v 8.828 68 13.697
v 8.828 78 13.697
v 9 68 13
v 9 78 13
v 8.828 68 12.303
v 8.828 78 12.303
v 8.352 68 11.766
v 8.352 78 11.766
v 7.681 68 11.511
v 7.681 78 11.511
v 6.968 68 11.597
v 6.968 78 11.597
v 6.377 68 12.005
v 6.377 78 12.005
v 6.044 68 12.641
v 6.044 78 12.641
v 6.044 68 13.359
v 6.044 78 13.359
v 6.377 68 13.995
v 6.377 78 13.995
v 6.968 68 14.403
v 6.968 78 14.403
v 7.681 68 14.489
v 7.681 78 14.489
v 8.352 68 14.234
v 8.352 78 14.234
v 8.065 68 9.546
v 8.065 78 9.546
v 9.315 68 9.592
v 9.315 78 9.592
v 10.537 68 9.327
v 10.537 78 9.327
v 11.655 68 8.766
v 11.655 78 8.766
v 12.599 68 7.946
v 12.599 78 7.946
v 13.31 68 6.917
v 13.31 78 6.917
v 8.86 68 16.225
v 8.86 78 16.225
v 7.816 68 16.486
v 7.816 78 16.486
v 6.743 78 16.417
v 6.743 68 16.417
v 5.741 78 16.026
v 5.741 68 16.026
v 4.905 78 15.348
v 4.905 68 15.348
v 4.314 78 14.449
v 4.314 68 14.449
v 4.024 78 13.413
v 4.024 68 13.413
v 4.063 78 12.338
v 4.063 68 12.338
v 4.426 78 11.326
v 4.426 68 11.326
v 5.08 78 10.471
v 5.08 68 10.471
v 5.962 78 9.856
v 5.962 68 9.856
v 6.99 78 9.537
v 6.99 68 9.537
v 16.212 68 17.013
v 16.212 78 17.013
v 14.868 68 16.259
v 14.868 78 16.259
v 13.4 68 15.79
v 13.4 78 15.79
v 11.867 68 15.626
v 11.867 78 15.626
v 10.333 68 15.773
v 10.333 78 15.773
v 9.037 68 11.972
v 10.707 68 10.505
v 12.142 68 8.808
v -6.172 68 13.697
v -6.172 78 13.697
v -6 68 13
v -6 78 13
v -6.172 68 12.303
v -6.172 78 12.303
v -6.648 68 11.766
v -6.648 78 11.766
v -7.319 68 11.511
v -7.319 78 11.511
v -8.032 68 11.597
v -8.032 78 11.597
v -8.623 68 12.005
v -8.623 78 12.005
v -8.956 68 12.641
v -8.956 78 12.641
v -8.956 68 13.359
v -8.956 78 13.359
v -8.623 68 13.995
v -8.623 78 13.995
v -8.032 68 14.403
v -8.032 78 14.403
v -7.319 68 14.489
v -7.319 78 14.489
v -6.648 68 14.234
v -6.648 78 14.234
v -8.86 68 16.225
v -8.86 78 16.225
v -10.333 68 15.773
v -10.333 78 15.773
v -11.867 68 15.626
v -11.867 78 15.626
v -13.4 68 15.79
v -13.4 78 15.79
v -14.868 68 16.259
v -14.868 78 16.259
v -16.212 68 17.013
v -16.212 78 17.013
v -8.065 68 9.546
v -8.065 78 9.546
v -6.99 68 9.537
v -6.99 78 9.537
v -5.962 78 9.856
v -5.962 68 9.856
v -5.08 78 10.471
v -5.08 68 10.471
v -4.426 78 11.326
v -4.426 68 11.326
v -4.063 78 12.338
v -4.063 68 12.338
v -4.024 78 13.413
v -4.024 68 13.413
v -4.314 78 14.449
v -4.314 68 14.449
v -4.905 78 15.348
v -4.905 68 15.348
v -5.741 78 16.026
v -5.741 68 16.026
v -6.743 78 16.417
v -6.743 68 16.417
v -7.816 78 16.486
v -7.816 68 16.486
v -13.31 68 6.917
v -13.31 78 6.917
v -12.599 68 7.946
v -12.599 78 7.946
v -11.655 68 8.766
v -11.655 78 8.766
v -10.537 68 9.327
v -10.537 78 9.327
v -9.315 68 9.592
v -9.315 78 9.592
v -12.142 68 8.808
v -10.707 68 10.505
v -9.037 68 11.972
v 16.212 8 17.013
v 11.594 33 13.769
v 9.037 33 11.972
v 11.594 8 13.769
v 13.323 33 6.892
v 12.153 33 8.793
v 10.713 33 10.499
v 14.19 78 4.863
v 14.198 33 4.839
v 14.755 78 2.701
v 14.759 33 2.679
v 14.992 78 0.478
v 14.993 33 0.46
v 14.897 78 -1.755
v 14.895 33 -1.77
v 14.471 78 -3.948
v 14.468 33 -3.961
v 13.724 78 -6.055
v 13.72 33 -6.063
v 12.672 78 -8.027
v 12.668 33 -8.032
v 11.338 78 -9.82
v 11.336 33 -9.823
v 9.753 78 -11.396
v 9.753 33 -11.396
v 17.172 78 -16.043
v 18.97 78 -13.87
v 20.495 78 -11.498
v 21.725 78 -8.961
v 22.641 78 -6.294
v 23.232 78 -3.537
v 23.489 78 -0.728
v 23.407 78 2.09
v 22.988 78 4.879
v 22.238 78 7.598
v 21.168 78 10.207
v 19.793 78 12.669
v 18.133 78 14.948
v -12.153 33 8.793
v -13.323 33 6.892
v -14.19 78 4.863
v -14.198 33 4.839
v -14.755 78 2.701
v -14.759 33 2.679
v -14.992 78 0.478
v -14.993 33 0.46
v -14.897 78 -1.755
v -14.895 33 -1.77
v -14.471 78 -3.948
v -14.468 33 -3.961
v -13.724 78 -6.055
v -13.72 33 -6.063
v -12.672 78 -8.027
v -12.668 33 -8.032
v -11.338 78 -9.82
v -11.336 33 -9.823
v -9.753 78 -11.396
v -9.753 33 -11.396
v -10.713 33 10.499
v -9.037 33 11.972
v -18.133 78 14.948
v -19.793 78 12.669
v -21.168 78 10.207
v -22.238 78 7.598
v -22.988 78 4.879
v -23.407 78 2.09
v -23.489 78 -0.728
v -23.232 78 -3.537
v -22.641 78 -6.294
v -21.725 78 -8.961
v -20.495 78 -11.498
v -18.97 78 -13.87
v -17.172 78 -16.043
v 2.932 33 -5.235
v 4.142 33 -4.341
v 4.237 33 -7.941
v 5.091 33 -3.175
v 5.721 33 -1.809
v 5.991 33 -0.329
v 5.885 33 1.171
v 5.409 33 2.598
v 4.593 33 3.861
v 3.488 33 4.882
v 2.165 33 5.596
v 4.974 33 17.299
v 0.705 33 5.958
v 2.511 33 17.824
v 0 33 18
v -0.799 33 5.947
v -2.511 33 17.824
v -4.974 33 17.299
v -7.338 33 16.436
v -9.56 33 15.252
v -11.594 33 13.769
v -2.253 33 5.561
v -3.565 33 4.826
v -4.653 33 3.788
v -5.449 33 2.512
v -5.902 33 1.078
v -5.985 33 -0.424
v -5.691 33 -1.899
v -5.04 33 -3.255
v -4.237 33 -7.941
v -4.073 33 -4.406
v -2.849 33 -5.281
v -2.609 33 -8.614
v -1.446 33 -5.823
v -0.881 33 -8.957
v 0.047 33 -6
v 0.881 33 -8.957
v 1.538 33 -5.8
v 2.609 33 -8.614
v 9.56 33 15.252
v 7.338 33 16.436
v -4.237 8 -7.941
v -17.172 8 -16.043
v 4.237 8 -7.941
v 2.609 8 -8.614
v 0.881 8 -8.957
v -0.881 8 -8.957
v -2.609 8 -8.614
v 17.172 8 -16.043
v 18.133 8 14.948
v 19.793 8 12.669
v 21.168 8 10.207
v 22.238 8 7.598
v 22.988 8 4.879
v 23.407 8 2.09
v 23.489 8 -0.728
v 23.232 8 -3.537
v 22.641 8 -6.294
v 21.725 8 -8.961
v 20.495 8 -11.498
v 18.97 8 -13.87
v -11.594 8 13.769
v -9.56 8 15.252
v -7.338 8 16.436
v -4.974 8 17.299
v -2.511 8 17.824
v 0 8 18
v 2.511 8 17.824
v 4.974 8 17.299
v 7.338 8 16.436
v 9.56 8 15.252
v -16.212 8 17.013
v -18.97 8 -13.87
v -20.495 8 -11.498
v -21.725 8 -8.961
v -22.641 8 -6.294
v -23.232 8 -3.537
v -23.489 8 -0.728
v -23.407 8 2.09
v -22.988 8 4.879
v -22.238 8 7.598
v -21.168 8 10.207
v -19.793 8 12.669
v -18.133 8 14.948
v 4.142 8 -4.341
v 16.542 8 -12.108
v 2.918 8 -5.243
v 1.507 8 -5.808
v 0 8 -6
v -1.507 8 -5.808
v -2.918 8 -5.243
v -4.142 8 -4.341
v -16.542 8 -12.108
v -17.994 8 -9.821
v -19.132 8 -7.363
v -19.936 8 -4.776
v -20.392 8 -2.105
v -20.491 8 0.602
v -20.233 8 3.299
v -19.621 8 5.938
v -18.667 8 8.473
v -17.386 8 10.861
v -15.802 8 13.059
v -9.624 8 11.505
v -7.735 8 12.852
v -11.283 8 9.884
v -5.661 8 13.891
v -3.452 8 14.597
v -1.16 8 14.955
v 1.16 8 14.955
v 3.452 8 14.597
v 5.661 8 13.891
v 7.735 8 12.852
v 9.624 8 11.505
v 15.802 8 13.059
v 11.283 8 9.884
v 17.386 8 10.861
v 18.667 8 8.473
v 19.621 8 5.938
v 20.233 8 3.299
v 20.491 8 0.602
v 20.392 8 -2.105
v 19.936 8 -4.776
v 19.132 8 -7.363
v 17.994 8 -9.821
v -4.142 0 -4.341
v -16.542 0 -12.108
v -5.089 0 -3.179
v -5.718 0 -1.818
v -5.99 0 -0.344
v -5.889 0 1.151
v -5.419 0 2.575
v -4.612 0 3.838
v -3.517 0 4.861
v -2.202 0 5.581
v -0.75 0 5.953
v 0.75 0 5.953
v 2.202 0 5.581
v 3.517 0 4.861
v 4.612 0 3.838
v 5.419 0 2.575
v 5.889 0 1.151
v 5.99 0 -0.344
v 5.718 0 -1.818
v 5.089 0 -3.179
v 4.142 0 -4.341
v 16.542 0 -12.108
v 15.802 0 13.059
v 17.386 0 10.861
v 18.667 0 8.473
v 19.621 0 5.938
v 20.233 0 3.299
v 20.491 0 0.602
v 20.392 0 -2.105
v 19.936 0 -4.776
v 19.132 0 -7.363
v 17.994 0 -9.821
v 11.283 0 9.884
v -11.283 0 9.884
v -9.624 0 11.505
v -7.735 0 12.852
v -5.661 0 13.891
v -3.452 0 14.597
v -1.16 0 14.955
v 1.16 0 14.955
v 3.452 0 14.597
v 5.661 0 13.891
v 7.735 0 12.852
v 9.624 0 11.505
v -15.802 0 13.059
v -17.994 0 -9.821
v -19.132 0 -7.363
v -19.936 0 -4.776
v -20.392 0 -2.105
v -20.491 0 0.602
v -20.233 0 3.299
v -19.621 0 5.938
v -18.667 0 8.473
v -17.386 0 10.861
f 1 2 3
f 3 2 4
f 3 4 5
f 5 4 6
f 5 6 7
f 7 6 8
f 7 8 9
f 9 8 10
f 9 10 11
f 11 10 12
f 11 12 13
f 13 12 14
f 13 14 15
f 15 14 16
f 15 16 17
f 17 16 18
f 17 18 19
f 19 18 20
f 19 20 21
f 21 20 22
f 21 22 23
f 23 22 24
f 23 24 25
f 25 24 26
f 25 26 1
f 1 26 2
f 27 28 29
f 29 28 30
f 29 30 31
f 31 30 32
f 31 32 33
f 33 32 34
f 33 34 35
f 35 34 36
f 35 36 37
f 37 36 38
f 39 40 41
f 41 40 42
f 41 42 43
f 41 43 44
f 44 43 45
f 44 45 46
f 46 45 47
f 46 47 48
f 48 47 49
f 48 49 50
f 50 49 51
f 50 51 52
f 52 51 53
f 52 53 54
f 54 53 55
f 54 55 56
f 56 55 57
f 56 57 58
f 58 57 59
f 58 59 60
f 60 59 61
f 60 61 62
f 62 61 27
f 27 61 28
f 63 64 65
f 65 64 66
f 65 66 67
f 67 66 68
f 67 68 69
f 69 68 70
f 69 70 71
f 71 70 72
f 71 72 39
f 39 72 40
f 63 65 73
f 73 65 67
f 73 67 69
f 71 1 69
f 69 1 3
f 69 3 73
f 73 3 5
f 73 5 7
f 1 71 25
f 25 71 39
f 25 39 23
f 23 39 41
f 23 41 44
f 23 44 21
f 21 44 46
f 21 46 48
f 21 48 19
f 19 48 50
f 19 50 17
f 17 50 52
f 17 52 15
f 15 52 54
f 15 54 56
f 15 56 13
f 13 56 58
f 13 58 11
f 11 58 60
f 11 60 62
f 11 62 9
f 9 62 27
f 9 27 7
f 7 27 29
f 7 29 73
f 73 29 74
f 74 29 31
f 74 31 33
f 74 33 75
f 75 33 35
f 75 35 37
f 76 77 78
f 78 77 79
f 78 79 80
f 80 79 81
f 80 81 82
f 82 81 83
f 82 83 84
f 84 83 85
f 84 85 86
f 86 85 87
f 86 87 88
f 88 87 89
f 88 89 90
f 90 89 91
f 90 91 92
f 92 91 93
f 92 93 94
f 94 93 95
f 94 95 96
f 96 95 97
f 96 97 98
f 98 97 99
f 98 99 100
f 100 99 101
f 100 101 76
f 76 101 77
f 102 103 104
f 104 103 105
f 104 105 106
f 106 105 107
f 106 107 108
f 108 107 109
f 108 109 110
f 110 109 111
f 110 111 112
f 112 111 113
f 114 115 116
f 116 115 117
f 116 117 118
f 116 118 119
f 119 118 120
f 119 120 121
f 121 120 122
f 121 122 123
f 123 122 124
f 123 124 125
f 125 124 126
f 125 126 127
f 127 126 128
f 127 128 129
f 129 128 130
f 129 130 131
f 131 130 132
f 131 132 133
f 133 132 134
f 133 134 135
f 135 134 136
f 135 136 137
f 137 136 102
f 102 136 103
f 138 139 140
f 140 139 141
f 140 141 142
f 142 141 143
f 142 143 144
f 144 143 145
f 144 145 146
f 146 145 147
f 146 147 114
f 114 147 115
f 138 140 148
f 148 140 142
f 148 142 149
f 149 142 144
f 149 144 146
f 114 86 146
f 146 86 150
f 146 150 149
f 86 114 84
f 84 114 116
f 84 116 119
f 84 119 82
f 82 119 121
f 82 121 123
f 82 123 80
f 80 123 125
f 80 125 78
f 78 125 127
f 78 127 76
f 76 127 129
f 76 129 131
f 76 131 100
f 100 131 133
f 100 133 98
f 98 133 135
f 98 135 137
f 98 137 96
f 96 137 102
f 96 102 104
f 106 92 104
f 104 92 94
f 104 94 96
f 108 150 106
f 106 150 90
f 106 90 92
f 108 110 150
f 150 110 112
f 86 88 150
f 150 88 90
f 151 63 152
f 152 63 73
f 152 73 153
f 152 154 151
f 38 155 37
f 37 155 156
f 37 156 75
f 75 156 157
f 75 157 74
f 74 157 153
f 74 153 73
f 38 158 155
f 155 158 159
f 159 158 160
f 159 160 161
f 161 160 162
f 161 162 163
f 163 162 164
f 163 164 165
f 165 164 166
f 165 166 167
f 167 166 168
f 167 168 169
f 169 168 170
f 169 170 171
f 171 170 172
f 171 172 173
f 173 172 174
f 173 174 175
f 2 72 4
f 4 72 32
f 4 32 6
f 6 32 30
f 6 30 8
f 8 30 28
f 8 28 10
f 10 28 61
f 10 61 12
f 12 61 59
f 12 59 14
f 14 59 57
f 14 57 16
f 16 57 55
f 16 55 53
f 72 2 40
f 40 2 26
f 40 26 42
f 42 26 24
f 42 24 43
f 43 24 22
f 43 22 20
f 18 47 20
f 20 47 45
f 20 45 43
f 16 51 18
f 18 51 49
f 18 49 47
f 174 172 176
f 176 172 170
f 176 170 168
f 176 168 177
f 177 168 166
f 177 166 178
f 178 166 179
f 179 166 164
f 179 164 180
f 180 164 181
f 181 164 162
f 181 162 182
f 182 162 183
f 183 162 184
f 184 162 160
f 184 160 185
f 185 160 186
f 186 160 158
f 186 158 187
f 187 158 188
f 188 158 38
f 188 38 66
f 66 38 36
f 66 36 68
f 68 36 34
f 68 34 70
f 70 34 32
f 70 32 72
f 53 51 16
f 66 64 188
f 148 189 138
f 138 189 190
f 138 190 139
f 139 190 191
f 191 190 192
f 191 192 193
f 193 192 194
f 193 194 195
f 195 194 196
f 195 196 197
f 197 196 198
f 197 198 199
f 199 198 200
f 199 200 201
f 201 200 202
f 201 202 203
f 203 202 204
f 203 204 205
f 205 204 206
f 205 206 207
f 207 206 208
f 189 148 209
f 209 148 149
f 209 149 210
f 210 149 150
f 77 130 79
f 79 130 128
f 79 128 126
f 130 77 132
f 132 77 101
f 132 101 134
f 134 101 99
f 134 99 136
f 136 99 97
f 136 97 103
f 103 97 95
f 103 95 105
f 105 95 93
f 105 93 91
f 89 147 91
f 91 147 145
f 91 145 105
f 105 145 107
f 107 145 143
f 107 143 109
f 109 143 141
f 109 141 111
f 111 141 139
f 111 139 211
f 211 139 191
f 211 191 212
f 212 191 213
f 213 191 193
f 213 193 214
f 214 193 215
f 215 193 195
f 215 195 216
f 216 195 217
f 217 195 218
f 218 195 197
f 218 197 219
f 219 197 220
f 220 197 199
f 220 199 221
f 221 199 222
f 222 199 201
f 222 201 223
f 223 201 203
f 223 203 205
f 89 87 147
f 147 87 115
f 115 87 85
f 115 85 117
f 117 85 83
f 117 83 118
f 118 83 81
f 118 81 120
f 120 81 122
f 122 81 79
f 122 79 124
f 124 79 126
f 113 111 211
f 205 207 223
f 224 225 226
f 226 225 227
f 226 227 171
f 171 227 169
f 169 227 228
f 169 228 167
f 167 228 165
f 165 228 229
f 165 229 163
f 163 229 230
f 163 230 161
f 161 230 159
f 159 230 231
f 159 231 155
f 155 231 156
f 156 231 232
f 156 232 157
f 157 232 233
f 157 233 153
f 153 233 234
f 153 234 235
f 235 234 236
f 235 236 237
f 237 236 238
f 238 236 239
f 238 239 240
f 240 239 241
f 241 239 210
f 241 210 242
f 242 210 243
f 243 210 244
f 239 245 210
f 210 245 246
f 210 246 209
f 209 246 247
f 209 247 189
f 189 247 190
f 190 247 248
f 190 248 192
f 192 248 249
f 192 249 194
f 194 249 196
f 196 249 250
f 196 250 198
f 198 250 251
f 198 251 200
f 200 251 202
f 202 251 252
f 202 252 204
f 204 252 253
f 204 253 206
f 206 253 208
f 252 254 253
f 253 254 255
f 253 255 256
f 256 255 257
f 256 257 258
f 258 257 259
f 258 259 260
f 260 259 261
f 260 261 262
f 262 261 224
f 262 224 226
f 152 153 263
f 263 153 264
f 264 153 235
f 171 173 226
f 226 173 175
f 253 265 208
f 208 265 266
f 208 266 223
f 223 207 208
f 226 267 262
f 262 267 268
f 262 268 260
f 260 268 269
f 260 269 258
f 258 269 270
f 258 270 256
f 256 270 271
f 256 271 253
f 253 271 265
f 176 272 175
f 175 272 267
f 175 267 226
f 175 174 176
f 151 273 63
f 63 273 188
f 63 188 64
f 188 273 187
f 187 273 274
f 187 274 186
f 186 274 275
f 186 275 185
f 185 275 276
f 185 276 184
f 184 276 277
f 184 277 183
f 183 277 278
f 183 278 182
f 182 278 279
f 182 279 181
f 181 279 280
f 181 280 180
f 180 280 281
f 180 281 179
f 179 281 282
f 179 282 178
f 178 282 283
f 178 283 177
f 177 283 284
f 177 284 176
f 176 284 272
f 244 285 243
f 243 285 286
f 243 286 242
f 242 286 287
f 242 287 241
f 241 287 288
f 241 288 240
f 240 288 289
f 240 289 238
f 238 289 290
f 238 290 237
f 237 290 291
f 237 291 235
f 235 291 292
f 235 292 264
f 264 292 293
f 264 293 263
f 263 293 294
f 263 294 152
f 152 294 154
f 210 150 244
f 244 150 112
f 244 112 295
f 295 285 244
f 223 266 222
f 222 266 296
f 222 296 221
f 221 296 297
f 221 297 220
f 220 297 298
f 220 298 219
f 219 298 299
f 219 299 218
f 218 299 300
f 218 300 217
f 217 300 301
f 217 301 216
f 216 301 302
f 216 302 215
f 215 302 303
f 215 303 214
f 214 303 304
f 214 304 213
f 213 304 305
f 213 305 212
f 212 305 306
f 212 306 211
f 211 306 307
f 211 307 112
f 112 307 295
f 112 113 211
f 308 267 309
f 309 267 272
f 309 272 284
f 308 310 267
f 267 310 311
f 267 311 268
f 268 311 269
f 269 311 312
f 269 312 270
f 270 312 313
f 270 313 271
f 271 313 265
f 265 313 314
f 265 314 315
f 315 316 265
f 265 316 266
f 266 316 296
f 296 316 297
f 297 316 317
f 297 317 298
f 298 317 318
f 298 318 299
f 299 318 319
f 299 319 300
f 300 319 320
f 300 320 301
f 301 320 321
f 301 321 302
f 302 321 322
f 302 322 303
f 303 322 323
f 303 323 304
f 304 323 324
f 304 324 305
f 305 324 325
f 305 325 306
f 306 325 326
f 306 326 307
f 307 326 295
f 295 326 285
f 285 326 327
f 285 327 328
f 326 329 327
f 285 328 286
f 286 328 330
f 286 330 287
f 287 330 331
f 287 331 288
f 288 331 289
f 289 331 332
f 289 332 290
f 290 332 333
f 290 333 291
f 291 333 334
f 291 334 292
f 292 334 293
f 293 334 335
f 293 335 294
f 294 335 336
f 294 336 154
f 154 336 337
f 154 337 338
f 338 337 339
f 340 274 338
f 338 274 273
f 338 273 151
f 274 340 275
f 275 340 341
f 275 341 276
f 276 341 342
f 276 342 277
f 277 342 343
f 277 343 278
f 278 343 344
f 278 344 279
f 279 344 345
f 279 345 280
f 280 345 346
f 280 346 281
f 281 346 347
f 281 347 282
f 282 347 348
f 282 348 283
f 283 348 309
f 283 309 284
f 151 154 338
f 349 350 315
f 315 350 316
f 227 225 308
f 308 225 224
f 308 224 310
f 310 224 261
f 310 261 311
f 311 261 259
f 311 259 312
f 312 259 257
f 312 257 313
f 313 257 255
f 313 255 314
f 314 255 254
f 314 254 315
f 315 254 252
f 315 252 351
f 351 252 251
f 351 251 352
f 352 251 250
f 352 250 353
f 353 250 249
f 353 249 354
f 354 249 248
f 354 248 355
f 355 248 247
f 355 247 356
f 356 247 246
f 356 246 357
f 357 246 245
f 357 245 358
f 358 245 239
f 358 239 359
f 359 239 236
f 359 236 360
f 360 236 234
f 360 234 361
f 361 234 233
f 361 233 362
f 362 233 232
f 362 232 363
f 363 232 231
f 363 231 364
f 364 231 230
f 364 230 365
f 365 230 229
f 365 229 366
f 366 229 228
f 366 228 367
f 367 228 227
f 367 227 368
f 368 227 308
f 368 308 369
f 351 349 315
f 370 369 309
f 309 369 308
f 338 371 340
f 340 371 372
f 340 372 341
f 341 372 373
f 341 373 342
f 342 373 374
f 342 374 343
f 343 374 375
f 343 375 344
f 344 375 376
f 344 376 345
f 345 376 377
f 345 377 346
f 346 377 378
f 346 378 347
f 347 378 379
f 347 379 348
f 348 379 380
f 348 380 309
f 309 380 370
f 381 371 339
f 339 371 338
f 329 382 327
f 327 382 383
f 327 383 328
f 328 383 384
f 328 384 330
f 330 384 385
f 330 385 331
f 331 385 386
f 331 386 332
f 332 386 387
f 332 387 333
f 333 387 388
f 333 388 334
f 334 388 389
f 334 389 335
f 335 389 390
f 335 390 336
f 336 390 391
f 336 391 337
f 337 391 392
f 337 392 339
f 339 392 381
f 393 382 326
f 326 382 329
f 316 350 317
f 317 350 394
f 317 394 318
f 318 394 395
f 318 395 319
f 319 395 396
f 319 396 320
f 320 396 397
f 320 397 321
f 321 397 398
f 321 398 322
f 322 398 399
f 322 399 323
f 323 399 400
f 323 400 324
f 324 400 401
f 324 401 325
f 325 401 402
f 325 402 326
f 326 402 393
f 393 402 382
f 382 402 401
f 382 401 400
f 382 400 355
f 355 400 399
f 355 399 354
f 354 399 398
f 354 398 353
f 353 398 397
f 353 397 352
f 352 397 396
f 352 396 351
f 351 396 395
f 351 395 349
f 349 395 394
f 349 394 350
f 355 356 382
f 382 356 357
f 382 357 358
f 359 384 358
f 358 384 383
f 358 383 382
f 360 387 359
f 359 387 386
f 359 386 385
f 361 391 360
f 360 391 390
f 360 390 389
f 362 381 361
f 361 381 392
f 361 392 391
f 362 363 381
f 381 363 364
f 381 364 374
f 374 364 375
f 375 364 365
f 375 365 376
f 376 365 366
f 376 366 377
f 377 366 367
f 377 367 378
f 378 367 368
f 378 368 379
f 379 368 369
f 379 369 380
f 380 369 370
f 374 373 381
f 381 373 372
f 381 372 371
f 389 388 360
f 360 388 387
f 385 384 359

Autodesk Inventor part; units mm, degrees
ref_plane "YZ Plane" through (0, 0, 0) normal (1, 0, 0) x (0, 1, 0)
ref_plane "XZ Plane" through (0, 0, 0) normal (0, 1, 0) x (-1, 0, 0)
ref_plane "XY Plane" through (0, 0, 0) normal (0, 0, 1) x (1, 0, 0)
sketch "스케치1" plane through (0, 0, 0) normal (0, 1, 0) x (-1, 0, 0)
  circle A0 centre (0, 0) radius 6
  circle A1 centre (0, 0) radius 20.5
  line L0 (4.1418, -4.3412) -> (16.542, -12.1084)
  line L1 (0, -28.7) -> (0, 28.7) projected
  line L2 (-4.1418, -4.3412) -> (-16.542, -12.1084)
  line L3 (15.8025, 13.0588) -> (3.8109, 4.6343)
  circle A2 centre (0, 0) radius 15
  line L4 (-15.8025, 13.0588) -> (-3.8109, 4.6343)
  point P0 (11.2832, 9.8838)
  point P1 (-11.2832, 9.8838)
  point P2 (-15.8025, 13.0588)
  point P3 (-16.542, -12.1084)
  dimension "d0" = 12
  dimension "d1" = 41
  dimension "d2" = 30
extrude "돌출1" add sketch "스케치1" along normal blind 8 contours A0 L3 A2 L0 | A0 L1 A2 L3 | A0 L4 A2 L1 | L3 A1 L0 A2 | A0 L2 A2 L4 | A2 L2 A1 L4
sketch "스케치3" plane through (0, 8, 0) normal (0, 1, 0) x (1, 0, 0)
  circle A0 centre (0, 0) radius 23.5
  arc A1 (-4.1418, 4.3412) -> (4.1418, 4.3412) centre (0, 0) ccw projected
  circle A2 centre (0, 0) radius 6
  line L0 (-15.8025, -13.0588) -> (-11.2832, -9.8838) projected
  arc A3 (-11.2832, -9.8838) -> (11.2832, -9.8838) centre (0, 0) ccw projected
  arc A4 (-16.542, 12.1084) -> (-15.8025, -13.0588) centre (0, 0) ccw projected
  line L1 (11.2832, -9.8838) -> (15.8025, -13.0588) projected
  arc A5 (15.8025, -13.0588) -> (16.542, 12.1084) centre (0, 0) ccw projected
  arc A6 (16.2118, -17.0126) -> (18.9628, 13.8803) centre (0, 0) ccw
  line L2 (16.2118, -17.0126) -> (11.5942, -13.7686)
  arc A7 (-11.5942, -13.7686) -> (11.5942, -13.7686) centre (0, 0) ccw
  line L3 (-11.5942, -13.7686) -> (-16.2118, -17.0126)
  arc A8 (-18.9628, 13.8803) -> (-16.2118, -17.0126) centre (0, 0) ccw
  line L4 (-4.1418, 4.3412) -> (-16.542, 12.1084) projected
  line L5 (16.542, 12.1084) -> (4.1418, 4.3412) projected
  line L6 (-17.1719, 16.0429) -> (-1.0036, 5.9155)
  line L7 (0, 0) -> (0, 6)
  line L8 (17.1719, 16.0429) -> (1.0036, 5.9155)
  circle A9 centre (0, 0) radius 9
  point P0 (4.1418, 4.3412)
  point P1 (-4.2366, 7.9405)
  point P2 (16.2118, -17.0126)
  point P3 (4.2366, 7.9405)
  dimension "d8" = 47
  dimension "d12" = 3
  dimension "d13" = 3
extrude "돌출3" add sketch "스케치3" along normal blind 25 contours A0 L2 A7 L3 L6 A9 L4 A4 L0 A3 L1 A5 L5 L8 | A9 L5 A2 L8 | L8 A2 L6 A9 | L6 A2 L4 A9 | A9 L4 A1 L5 | L5 A5 L1 A3 L0 A4 L4 A9
sketch "스케치4" plane through (0, 33, 0) normal (0, 1, 0) x (1, 0, 0)
  circle A0 centre (0, 0) radius 15
  line L0 (-16.2118, -17.0126) -> (-9.037, -11.9721)
  line L1 (-16.2118, -17.0126) -> (-11.5942, -13.7686) projected
  arc A1 (16.2118, -17.0126) -> (17.1719, 16.0429) centre (0, 0) ccw projected
  line L2 (16.2118, -17.0126) -> (9.037, -11.9721)
  line L3 (11.5942, -13.7686) -> (16.2118, -17.0126) projected
  line L4 (-4.2366, 7.9405) -> (-17.1719, 16.0429) projected
  arc A2 (-17.1719, 16.0429) -> (-16.2118, -17.0126) centre (0, 0) ccw projected
  line L5 (17.1719, 16.0429) -> (4.2366, 7.9405) projected
  point P0 (9.7534, 11.3961)
  point P1 (-9.7534, 11.3961)
  dimension "d14" = 30
extrude "돌출4" add sketch "스케치4" along normal blind 45 contours L0 A2 L4 A0 | A0 L5 A1 L2
sketch "스케치5" plane through (0, 78, 0) normal (0, 1, 0) x (1, 0, 0)
  circle A0 centre (-7.5, -13) radius 1.5
  circle A1 centre (7.5, -13) radius 1.5
  line L0 (-7.5, -13) -> (7.5, -13)
  line L1 (0, 23.9029) -> (0, -31.1174) projected
  line L2 (-16.2118, -17.0126) -> (-9.037, -11.9721) projected
  arc A2 (-9.7534, 11.3961) -> (-9.037, -11.9721) centre (0, 0) ccw projected
  line L3 (-9.7534, 11.3961) -> (-17.1719, 16.0429) projected
  arc A3 (-17.1719, 16.0429) -> (-16.2118, -17.0126) centre (0, 0) ccw projected
  circle A4 centre (-7.5, -13) radius 3.5
  arc A5 (-13.3097, -6.9175) -> (-8.0654, -9.546) centre (-8.8731, -4.6116) ccw
  arc A6 (-9.7534, 11.3961) -> (-9.037, -11.9721) centre (0, 0) ccw projected
  arc A7 (-8.8597, -16.2251) -> (-16.2118, -17.0126) centre (-11.8247, -23.2573) ccw
  line L4 (-16.2118, -17.0126) -> (-9.037, -11.9721) projected
  circle A8 centre (7.5, -13) radius 3.5
  arc A9 (8.0654, -9.546) -> (13.3097, -6.9175) centre (8.8731, -4.6116) ccw
  arc A10 (16.2118, -17.0126) -> (8.8597, -16.2251) centre (11.8247, -23.2573) ccw
  arc A11 (9.037, -11.9721) -> (9.7534, 11.3961) centre (0, 0) ccw projected
  line L5 (9.037, -11.9721) -> (16.2118, -17.0126) projected
  point P0 (0, -13)
  dimension "d17" = 3
  dimension "d18" = 3
  dimension "d19" = 15
  dimension "d20" = 13
  dimension "d21" = 2
  dimension "d22" = 5
extrude "돌출5" add sketch "스케치5" against normal blind 10 contours A4 L2 A2 | A8 A11 L5 | A4 A2 A5 | A7 L2 A4 | A9 A11 A8 | A8 L5 A10 picked at (-9.0463, -11.1348) picked at (9.0463, -11.1348)
properties part number "가변저항 고정"
